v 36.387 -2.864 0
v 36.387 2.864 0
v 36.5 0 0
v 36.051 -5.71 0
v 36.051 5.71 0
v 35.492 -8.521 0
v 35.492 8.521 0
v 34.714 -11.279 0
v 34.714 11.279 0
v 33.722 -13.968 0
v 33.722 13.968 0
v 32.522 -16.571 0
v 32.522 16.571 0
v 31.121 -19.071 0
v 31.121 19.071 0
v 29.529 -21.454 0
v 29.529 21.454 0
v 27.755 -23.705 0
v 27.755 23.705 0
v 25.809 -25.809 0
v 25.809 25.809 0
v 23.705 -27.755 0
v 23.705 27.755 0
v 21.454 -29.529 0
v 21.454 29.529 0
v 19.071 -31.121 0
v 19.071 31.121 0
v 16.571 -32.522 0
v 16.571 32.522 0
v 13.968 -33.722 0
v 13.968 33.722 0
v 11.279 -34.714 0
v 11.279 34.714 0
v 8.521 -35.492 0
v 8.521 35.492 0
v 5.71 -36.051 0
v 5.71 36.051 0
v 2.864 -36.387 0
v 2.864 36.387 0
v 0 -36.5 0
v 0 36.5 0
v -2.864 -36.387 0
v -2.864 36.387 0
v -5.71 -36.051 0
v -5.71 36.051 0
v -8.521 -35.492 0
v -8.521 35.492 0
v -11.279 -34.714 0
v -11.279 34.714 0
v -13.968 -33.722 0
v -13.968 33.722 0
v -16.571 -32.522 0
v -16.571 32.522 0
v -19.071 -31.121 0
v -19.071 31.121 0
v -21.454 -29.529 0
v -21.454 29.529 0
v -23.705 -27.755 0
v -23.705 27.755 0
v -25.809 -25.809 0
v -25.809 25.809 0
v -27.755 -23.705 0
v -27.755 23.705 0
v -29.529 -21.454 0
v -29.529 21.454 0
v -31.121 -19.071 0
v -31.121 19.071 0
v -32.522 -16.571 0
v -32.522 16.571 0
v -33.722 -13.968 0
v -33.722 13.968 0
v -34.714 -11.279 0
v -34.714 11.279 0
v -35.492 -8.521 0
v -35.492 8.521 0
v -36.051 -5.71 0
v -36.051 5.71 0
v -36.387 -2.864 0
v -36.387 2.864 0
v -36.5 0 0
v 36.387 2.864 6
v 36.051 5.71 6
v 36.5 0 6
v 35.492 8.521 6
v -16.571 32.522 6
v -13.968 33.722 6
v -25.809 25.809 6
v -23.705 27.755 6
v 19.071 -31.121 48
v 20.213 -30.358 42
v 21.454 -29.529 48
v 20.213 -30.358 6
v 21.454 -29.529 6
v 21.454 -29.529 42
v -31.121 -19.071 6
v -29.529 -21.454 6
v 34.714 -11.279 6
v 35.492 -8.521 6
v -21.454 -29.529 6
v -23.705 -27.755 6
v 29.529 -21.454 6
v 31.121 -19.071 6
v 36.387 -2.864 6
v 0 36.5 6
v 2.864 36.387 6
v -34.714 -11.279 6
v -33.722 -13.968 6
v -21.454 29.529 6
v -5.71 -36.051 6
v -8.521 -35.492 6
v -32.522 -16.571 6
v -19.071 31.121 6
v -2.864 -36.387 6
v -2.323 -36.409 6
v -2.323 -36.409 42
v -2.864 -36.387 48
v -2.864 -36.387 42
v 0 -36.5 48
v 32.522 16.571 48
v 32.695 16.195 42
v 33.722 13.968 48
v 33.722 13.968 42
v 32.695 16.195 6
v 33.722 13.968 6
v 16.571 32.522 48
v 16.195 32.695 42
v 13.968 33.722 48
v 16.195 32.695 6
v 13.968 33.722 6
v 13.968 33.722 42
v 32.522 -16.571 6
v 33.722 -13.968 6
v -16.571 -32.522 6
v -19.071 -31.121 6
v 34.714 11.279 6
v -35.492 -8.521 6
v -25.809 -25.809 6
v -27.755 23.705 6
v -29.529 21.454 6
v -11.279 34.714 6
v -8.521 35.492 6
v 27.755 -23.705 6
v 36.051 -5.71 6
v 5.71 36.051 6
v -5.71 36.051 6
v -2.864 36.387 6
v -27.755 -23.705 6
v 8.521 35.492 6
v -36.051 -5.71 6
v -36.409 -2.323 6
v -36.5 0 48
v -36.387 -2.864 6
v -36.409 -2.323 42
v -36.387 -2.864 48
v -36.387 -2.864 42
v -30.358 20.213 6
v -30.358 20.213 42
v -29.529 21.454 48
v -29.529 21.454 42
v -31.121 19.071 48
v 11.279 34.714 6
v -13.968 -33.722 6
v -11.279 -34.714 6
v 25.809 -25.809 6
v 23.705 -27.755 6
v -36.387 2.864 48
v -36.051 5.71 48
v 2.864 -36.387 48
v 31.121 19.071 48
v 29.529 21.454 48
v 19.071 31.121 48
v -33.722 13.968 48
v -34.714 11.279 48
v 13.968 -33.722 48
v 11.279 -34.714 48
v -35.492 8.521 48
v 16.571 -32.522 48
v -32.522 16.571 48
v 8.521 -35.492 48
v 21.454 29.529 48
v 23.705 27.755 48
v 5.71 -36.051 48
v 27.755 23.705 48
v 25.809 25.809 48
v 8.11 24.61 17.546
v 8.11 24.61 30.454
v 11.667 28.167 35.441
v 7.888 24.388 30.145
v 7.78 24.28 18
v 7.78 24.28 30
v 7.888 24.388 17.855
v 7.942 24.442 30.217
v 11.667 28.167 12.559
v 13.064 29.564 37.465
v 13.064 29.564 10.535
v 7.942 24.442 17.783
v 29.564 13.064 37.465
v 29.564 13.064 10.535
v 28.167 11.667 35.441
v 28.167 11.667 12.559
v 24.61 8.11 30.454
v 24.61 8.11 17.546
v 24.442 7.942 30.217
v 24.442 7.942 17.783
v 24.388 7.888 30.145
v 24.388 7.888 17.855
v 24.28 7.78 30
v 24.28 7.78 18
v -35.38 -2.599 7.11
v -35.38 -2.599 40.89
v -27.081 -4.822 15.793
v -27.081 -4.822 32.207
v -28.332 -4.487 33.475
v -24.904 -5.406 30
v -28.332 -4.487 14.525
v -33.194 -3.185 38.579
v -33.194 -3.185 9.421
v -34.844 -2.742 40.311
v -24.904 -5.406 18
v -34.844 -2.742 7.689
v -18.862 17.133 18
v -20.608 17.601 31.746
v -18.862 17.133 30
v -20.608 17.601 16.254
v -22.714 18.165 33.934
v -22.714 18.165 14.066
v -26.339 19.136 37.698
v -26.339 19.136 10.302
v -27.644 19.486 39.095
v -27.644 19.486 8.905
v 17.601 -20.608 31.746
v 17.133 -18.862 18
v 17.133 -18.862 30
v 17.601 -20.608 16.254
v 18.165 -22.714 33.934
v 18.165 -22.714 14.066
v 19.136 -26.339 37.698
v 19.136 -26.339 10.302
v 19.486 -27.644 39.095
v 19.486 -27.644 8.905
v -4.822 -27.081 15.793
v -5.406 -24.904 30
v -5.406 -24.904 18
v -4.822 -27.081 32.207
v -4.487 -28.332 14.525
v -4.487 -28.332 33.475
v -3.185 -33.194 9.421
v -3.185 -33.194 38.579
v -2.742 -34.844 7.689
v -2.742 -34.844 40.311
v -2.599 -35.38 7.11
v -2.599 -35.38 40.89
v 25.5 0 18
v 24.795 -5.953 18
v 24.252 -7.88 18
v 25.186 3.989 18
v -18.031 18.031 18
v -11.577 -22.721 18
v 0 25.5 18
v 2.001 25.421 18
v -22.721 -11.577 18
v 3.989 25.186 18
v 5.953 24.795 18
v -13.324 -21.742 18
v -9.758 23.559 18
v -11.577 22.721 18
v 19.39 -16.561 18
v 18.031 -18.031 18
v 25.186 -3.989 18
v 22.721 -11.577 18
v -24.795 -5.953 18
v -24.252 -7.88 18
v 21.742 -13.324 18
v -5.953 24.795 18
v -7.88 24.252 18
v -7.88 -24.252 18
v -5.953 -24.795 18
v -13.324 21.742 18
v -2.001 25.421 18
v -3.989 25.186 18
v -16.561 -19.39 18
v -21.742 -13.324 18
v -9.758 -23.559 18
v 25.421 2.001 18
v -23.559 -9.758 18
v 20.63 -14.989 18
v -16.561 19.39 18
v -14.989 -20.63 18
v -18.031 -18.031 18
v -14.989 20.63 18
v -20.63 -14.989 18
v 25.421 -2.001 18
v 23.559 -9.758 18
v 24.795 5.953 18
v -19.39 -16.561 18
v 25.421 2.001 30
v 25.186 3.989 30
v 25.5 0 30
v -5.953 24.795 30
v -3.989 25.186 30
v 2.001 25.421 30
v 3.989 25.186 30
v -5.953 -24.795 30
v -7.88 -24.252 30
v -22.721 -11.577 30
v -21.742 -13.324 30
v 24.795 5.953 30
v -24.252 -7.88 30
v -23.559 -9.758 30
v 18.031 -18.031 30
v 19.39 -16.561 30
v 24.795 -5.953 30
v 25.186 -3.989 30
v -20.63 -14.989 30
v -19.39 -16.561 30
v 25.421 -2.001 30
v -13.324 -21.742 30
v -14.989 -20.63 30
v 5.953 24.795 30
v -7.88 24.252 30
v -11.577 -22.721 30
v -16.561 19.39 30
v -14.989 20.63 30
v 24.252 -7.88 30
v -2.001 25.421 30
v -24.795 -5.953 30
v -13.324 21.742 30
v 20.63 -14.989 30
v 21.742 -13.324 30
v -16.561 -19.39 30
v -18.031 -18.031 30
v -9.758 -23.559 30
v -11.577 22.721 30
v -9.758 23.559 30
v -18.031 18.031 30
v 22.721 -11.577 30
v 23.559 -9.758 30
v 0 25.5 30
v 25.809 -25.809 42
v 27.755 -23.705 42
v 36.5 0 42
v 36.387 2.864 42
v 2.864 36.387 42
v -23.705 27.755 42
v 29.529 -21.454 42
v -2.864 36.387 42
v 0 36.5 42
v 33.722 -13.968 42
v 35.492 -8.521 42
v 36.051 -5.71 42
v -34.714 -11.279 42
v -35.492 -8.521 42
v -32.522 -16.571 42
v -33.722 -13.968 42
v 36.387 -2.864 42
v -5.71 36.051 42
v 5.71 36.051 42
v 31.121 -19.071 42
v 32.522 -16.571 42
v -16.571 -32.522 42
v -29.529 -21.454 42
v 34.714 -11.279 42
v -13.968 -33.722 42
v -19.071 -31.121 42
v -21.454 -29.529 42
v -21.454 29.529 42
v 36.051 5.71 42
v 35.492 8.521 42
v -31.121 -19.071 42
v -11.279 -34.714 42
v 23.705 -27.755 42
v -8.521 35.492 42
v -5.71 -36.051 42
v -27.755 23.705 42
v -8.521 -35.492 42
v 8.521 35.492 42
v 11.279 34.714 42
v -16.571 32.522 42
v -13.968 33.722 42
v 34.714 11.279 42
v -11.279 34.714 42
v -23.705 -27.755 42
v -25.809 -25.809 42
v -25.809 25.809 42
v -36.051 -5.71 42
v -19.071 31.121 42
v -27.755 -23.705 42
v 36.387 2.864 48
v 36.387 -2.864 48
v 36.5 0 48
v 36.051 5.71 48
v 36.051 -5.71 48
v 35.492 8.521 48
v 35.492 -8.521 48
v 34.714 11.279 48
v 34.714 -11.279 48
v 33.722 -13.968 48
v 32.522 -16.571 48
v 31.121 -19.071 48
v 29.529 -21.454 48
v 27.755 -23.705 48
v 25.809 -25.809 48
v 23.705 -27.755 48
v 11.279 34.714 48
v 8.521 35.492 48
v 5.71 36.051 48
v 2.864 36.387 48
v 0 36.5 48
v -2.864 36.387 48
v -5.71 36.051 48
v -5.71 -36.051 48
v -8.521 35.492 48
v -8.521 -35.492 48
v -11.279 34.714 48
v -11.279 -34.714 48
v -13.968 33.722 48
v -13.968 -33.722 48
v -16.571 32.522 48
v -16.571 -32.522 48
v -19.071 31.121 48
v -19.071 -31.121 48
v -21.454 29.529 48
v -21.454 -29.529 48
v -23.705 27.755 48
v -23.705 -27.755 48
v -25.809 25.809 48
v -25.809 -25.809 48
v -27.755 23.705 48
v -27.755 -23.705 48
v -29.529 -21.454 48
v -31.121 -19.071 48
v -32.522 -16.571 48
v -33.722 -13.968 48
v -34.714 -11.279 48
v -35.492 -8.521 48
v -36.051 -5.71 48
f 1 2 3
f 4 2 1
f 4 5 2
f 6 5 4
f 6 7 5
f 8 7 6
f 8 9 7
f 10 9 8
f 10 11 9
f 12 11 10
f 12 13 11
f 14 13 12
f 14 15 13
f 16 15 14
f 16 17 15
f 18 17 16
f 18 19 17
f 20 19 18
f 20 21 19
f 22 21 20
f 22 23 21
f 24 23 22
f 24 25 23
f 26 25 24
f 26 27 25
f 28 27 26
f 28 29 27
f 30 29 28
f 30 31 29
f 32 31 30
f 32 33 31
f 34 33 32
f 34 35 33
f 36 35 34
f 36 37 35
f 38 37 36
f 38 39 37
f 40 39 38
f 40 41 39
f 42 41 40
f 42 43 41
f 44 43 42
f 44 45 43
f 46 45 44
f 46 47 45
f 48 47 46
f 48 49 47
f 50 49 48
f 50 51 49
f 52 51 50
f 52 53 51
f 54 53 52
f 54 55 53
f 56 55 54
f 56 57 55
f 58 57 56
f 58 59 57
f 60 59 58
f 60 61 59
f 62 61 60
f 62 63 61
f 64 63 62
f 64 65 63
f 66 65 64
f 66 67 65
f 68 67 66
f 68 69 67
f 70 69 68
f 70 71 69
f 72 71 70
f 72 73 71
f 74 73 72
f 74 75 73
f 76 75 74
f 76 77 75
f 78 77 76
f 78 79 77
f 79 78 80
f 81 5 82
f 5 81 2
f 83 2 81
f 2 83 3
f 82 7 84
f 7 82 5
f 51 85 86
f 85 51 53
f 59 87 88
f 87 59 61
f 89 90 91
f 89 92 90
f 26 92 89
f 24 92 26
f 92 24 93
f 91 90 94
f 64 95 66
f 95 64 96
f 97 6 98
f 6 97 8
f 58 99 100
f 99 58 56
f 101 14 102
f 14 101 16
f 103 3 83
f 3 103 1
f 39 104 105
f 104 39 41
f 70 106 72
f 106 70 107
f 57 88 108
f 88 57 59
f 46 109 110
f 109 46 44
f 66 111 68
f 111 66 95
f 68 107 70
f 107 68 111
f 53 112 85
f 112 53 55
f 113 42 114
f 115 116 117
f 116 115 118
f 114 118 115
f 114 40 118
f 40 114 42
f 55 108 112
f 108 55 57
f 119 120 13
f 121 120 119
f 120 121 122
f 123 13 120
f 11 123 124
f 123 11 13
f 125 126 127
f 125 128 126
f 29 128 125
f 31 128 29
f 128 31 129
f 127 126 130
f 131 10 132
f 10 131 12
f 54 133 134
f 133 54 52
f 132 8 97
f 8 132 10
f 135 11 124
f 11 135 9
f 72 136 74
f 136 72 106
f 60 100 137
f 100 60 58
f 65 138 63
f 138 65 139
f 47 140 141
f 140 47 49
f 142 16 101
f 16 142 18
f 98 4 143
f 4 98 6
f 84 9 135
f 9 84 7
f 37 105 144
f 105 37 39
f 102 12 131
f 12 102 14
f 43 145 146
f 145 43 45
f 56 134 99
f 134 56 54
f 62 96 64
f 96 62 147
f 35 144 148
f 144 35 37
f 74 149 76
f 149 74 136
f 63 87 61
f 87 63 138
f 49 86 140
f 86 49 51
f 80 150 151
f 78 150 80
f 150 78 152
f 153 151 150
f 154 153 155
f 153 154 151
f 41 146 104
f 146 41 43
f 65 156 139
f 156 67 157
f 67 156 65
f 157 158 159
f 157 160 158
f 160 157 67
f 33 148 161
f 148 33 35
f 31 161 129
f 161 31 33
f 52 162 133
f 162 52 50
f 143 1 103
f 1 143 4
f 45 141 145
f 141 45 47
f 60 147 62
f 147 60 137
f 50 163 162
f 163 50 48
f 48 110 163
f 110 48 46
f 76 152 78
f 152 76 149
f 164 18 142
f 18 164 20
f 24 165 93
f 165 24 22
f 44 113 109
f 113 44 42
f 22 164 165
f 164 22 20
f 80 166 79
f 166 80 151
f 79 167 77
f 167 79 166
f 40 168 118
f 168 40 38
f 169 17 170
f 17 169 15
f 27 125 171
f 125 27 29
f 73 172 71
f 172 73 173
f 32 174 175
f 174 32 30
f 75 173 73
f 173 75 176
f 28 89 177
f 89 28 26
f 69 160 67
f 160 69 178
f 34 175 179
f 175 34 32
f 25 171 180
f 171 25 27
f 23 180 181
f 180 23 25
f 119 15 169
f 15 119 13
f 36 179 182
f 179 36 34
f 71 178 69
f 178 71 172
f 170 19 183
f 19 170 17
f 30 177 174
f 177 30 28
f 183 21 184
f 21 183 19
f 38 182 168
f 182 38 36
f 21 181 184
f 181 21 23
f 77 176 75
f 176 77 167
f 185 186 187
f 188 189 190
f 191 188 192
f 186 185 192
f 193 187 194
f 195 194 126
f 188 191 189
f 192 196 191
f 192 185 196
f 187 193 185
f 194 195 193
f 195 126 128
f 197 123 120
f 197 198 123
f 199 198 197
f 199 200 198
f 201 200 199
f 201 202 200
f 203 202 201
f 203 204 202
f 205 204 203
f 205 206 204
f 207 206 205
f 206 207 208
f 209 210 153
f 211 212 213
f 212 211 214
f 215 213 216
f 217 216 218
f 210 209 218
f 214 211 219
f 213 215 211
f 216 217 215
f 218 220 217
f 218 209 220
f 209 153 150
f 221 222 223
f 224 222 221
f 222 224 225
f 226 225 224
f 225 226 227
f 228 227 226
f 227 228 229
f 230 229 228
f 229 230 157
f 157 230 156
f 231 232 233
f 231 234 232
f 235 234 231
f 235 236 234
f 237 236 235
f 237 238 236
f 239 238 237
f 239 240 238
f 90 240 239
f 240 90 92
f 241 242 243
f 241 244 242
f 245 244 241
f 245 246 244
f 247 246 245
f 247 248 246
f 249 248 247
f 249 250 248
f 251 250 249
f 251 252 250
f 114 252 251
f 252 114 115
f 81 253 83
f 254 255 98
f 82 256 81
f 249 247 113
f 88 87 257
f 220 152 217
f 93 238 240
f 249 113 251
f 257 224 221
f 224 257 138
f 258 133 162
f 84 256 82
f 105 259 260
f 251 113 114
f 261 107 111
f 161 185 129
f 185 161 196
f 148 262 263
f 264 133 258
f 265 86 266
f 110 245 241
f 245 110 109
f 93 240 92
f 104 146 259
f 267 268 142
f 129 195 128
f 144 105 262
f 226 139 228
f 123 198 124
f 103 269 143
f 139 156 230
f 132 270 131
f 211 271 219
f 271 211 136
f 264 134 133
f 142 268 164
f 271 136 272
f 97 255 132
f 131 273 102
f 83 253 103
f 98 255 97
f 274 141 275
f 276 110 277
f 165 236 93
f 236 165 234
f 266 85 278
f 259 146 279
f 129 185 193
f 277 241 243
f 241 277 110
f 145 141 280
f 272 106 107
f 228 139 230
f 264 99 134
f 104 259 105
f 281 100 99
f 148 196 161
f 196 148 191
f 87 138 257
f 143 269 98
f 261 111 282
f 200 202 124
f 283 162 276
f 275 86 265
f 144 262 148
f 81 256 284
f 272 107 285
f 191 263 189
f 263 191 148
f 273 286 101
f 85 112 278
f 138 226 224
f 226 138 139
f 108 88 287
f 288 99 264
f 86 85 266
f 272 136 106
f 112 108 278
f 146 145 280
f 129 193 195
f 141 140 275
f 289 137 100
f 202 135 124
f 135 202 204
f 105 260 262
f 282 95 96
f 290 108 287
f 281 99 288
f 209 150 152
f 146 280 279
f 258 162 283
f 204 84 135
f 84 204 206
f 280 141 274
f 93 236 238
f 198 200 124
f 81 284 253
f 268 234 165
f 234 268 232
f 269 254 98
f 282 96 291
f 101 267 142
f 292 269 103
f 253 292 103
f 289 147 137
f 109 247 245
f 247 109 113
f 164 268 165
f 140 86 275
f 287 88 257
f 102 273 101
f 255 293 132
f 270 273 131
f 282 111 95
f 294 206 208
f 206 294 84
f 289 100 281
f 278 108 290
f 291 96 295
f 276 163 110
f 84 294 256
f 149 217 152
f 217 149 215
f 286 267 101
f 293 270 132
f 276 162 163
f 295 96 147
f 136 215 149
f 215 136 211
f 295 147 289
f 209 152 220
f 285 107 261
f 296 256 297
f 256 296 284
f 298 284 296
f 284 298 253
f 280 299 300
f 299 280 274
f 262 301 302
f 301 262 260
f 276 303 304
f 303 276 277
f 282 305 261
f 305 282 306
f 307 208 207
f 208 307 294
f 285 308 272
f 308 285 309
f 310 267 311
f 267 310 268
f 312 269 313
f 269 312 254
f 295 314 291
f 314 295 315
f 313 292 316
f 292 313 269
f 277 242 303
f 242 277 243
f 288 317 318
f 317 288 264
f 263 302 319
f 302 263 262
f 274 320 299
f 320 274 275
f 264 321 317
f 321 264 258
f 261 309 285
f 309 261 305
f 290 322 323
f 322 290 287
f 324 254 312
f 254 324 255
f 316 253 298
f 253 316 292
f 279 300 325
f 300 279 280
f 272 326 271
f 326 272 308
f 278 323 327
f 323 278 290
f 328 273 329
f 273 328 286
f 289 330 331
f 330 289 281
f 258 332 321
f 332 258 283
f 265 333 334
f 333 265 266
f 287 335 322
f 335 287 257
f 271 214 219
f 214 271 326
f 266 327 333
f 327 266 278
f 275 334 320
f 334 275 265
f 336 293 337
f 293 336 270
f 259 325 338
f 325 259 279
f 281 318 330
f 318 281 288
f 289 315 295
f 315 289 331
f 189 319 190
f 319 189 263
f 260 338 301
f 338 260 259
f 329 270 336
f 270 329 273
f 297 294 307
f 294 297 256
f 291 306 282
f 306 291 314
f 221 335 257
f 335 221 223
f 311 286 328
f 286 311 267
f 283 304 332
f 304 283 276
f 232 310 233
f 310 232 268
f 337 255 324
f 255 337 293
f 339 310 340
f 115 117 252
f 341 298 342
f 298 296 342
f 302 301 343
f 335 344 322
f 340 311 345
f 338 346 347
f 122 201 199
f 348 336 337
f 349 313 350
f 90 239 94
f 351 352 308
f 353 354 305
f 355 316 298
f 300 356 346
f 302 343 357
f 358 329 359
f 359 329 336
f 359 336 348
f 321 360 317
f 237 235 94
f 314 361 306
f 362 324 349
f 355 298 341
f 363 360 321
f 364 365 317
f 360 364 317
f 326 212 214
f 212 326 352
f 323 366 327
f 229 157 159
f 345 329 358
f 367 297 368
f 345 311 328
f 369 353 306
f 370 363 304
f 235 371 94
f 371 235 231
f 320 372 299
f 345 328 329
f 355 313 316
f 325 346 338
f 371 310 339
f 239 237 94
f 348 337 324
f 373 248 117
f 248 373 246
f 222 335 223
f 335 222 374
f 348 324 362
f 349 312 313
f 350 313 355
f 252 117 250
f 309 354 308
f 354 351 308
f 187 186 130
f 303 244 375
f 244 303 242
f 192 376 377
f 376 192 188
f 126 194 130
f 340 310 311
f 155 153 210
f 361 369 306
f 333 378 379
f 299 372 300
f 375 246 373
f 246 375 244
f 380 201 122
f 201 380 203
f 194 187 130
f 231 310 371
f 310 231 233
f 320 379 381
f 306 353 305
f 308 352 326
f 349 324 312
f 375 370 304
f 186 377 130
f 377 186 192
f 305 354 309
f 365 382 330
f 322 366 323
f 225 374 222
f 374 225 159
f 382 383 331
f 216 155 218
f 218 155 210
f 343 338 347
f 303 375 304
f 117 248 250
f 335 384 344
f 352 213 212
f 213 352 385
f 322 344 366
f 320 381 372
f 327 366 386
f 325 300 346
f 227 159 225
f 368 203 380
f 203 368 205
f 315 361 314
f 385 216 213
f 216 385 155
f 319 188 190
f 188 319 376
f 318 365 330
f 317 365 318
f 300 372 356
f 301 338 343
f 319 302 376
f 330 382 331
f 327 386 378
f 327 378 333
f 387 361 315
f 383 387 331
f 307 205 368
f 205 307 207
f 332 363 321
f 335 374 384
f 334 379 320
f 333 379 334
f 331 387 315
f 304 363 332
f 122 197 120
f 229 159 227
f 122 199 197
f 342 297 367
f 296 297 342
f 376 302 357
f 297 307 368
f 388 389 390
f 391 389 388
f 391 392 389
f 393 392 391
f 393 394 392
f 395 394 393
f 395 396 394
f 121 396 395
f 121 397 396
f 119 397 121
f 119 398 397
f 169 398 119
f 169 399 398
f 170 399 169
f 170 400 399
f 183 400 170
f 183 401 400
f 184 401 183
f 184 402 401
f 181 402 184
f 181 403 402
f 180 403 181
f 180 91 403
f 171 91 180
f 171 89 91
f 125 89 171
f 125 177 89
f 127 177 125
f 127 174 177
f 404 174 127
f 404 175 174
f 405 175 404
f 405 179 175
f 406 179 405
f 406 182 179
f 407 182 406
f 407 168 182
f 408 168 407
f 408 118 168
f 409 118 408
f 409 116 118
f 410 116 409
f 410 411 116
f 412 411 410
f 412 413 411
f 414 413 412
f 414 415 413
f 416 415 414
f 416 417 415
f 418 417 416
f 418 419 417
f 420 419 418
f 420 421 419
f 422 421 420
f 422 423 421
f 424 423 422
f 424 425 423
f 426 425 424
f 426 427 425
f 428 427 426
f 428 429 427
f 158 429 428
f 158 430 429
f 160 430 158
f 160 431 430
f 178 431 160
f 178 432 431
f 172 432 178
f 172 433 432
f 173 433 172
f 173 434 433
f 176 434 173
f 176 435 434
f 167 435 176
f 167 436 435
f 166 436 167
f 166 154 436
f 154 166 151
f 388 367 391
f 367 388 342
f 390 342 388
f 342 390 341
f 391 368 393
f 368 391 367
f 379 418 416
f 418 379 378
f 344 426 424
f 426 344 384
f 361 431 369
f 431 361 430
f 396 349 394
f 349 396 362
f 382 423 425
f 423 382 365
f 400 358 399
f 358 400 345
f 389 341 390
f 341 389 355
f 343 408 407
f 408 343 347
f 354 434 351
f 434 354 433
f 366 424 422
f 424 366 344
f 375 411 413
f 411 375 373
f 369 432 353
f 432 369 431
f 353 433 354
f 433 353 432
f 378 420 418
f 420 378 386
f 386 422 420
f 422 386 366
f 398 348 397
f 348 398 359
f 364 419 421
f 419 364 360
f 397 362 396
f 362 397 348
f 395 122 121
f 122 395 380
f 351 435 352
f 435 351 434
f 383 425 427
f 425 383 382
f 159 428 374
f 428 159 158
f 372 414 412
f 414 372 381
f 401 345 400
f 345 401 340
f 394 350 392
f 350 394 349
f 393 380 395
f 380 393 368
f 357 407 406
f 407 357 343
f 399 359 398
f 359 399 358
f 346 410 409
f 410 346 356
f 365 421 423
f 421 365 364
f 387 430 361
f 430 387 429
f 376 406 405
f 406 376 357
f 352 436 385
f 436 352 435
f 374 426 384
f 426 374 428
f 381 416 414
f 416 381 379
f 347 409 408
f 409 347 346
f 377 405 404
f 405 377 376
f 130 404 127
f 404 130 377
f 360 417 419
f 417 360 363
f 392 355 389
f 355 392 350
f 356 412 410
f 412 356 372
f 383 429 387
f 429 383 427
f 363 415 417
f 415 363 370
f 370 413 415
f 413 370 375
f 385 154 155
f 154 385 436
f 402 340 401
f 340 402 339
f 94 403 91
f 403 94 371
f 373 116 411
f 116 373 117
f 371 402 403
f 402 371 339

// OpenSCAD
spool_width = 48;
box_diameter = 50 + 1;
spool_inner_width = 72 + 1;
thickness = 3;
leg_width = 30;
angles = [0:120:360];

$fn = 80;

x = spool_width / 8;

module part(inner1, inner2, outer1, outer2, height)
{
    // inner
    difference()
    {
        cylinder(h = height, r1 = inner1 / 2, r2 = inner2 / 2);
        for (a = angles)
        {
            rotate(a) translate([ 20, 20, 0 ]) cylinder(h = height, d = leg_width + thickness, $fn = 4);
        }
    }

    // outer
    intersection()
    {
        cylinder(h = height, r1 = outer1 / 2, r2 = outer2 / 2);
        for (a = angles)
        {
            rotate(a) translate([ 20, 20, 0 ]) cylinder(h = height, d = leg_width + thickness, $fn = 4);
        }
    }
}

translate([ 0, 0, x * 0 ]) part(spool_inner_width, spool_inner_width, spool_inner_width, spool_inner_width, x);
translate([ 0, 0, x * 1 ]) part(spool_inner_width, box_diameter, spool_inner_width, spool_inner_width, x * 2);
translate([ 0, 0, x * 3 ]) part(box_diameter, box_diameter, spool_inner_width, spool_inner_width, x * 2);
translate([ 0, 0, x * 5 ]) part(box_diameter, spool_inner_width, spool_inner_width, spool_inner_width, x * 2);
translate([ 0, 0, x * 7 ]) part(spool_inner_width, spool_inner_width, spool_inner_width, spool_inner_width, x);
